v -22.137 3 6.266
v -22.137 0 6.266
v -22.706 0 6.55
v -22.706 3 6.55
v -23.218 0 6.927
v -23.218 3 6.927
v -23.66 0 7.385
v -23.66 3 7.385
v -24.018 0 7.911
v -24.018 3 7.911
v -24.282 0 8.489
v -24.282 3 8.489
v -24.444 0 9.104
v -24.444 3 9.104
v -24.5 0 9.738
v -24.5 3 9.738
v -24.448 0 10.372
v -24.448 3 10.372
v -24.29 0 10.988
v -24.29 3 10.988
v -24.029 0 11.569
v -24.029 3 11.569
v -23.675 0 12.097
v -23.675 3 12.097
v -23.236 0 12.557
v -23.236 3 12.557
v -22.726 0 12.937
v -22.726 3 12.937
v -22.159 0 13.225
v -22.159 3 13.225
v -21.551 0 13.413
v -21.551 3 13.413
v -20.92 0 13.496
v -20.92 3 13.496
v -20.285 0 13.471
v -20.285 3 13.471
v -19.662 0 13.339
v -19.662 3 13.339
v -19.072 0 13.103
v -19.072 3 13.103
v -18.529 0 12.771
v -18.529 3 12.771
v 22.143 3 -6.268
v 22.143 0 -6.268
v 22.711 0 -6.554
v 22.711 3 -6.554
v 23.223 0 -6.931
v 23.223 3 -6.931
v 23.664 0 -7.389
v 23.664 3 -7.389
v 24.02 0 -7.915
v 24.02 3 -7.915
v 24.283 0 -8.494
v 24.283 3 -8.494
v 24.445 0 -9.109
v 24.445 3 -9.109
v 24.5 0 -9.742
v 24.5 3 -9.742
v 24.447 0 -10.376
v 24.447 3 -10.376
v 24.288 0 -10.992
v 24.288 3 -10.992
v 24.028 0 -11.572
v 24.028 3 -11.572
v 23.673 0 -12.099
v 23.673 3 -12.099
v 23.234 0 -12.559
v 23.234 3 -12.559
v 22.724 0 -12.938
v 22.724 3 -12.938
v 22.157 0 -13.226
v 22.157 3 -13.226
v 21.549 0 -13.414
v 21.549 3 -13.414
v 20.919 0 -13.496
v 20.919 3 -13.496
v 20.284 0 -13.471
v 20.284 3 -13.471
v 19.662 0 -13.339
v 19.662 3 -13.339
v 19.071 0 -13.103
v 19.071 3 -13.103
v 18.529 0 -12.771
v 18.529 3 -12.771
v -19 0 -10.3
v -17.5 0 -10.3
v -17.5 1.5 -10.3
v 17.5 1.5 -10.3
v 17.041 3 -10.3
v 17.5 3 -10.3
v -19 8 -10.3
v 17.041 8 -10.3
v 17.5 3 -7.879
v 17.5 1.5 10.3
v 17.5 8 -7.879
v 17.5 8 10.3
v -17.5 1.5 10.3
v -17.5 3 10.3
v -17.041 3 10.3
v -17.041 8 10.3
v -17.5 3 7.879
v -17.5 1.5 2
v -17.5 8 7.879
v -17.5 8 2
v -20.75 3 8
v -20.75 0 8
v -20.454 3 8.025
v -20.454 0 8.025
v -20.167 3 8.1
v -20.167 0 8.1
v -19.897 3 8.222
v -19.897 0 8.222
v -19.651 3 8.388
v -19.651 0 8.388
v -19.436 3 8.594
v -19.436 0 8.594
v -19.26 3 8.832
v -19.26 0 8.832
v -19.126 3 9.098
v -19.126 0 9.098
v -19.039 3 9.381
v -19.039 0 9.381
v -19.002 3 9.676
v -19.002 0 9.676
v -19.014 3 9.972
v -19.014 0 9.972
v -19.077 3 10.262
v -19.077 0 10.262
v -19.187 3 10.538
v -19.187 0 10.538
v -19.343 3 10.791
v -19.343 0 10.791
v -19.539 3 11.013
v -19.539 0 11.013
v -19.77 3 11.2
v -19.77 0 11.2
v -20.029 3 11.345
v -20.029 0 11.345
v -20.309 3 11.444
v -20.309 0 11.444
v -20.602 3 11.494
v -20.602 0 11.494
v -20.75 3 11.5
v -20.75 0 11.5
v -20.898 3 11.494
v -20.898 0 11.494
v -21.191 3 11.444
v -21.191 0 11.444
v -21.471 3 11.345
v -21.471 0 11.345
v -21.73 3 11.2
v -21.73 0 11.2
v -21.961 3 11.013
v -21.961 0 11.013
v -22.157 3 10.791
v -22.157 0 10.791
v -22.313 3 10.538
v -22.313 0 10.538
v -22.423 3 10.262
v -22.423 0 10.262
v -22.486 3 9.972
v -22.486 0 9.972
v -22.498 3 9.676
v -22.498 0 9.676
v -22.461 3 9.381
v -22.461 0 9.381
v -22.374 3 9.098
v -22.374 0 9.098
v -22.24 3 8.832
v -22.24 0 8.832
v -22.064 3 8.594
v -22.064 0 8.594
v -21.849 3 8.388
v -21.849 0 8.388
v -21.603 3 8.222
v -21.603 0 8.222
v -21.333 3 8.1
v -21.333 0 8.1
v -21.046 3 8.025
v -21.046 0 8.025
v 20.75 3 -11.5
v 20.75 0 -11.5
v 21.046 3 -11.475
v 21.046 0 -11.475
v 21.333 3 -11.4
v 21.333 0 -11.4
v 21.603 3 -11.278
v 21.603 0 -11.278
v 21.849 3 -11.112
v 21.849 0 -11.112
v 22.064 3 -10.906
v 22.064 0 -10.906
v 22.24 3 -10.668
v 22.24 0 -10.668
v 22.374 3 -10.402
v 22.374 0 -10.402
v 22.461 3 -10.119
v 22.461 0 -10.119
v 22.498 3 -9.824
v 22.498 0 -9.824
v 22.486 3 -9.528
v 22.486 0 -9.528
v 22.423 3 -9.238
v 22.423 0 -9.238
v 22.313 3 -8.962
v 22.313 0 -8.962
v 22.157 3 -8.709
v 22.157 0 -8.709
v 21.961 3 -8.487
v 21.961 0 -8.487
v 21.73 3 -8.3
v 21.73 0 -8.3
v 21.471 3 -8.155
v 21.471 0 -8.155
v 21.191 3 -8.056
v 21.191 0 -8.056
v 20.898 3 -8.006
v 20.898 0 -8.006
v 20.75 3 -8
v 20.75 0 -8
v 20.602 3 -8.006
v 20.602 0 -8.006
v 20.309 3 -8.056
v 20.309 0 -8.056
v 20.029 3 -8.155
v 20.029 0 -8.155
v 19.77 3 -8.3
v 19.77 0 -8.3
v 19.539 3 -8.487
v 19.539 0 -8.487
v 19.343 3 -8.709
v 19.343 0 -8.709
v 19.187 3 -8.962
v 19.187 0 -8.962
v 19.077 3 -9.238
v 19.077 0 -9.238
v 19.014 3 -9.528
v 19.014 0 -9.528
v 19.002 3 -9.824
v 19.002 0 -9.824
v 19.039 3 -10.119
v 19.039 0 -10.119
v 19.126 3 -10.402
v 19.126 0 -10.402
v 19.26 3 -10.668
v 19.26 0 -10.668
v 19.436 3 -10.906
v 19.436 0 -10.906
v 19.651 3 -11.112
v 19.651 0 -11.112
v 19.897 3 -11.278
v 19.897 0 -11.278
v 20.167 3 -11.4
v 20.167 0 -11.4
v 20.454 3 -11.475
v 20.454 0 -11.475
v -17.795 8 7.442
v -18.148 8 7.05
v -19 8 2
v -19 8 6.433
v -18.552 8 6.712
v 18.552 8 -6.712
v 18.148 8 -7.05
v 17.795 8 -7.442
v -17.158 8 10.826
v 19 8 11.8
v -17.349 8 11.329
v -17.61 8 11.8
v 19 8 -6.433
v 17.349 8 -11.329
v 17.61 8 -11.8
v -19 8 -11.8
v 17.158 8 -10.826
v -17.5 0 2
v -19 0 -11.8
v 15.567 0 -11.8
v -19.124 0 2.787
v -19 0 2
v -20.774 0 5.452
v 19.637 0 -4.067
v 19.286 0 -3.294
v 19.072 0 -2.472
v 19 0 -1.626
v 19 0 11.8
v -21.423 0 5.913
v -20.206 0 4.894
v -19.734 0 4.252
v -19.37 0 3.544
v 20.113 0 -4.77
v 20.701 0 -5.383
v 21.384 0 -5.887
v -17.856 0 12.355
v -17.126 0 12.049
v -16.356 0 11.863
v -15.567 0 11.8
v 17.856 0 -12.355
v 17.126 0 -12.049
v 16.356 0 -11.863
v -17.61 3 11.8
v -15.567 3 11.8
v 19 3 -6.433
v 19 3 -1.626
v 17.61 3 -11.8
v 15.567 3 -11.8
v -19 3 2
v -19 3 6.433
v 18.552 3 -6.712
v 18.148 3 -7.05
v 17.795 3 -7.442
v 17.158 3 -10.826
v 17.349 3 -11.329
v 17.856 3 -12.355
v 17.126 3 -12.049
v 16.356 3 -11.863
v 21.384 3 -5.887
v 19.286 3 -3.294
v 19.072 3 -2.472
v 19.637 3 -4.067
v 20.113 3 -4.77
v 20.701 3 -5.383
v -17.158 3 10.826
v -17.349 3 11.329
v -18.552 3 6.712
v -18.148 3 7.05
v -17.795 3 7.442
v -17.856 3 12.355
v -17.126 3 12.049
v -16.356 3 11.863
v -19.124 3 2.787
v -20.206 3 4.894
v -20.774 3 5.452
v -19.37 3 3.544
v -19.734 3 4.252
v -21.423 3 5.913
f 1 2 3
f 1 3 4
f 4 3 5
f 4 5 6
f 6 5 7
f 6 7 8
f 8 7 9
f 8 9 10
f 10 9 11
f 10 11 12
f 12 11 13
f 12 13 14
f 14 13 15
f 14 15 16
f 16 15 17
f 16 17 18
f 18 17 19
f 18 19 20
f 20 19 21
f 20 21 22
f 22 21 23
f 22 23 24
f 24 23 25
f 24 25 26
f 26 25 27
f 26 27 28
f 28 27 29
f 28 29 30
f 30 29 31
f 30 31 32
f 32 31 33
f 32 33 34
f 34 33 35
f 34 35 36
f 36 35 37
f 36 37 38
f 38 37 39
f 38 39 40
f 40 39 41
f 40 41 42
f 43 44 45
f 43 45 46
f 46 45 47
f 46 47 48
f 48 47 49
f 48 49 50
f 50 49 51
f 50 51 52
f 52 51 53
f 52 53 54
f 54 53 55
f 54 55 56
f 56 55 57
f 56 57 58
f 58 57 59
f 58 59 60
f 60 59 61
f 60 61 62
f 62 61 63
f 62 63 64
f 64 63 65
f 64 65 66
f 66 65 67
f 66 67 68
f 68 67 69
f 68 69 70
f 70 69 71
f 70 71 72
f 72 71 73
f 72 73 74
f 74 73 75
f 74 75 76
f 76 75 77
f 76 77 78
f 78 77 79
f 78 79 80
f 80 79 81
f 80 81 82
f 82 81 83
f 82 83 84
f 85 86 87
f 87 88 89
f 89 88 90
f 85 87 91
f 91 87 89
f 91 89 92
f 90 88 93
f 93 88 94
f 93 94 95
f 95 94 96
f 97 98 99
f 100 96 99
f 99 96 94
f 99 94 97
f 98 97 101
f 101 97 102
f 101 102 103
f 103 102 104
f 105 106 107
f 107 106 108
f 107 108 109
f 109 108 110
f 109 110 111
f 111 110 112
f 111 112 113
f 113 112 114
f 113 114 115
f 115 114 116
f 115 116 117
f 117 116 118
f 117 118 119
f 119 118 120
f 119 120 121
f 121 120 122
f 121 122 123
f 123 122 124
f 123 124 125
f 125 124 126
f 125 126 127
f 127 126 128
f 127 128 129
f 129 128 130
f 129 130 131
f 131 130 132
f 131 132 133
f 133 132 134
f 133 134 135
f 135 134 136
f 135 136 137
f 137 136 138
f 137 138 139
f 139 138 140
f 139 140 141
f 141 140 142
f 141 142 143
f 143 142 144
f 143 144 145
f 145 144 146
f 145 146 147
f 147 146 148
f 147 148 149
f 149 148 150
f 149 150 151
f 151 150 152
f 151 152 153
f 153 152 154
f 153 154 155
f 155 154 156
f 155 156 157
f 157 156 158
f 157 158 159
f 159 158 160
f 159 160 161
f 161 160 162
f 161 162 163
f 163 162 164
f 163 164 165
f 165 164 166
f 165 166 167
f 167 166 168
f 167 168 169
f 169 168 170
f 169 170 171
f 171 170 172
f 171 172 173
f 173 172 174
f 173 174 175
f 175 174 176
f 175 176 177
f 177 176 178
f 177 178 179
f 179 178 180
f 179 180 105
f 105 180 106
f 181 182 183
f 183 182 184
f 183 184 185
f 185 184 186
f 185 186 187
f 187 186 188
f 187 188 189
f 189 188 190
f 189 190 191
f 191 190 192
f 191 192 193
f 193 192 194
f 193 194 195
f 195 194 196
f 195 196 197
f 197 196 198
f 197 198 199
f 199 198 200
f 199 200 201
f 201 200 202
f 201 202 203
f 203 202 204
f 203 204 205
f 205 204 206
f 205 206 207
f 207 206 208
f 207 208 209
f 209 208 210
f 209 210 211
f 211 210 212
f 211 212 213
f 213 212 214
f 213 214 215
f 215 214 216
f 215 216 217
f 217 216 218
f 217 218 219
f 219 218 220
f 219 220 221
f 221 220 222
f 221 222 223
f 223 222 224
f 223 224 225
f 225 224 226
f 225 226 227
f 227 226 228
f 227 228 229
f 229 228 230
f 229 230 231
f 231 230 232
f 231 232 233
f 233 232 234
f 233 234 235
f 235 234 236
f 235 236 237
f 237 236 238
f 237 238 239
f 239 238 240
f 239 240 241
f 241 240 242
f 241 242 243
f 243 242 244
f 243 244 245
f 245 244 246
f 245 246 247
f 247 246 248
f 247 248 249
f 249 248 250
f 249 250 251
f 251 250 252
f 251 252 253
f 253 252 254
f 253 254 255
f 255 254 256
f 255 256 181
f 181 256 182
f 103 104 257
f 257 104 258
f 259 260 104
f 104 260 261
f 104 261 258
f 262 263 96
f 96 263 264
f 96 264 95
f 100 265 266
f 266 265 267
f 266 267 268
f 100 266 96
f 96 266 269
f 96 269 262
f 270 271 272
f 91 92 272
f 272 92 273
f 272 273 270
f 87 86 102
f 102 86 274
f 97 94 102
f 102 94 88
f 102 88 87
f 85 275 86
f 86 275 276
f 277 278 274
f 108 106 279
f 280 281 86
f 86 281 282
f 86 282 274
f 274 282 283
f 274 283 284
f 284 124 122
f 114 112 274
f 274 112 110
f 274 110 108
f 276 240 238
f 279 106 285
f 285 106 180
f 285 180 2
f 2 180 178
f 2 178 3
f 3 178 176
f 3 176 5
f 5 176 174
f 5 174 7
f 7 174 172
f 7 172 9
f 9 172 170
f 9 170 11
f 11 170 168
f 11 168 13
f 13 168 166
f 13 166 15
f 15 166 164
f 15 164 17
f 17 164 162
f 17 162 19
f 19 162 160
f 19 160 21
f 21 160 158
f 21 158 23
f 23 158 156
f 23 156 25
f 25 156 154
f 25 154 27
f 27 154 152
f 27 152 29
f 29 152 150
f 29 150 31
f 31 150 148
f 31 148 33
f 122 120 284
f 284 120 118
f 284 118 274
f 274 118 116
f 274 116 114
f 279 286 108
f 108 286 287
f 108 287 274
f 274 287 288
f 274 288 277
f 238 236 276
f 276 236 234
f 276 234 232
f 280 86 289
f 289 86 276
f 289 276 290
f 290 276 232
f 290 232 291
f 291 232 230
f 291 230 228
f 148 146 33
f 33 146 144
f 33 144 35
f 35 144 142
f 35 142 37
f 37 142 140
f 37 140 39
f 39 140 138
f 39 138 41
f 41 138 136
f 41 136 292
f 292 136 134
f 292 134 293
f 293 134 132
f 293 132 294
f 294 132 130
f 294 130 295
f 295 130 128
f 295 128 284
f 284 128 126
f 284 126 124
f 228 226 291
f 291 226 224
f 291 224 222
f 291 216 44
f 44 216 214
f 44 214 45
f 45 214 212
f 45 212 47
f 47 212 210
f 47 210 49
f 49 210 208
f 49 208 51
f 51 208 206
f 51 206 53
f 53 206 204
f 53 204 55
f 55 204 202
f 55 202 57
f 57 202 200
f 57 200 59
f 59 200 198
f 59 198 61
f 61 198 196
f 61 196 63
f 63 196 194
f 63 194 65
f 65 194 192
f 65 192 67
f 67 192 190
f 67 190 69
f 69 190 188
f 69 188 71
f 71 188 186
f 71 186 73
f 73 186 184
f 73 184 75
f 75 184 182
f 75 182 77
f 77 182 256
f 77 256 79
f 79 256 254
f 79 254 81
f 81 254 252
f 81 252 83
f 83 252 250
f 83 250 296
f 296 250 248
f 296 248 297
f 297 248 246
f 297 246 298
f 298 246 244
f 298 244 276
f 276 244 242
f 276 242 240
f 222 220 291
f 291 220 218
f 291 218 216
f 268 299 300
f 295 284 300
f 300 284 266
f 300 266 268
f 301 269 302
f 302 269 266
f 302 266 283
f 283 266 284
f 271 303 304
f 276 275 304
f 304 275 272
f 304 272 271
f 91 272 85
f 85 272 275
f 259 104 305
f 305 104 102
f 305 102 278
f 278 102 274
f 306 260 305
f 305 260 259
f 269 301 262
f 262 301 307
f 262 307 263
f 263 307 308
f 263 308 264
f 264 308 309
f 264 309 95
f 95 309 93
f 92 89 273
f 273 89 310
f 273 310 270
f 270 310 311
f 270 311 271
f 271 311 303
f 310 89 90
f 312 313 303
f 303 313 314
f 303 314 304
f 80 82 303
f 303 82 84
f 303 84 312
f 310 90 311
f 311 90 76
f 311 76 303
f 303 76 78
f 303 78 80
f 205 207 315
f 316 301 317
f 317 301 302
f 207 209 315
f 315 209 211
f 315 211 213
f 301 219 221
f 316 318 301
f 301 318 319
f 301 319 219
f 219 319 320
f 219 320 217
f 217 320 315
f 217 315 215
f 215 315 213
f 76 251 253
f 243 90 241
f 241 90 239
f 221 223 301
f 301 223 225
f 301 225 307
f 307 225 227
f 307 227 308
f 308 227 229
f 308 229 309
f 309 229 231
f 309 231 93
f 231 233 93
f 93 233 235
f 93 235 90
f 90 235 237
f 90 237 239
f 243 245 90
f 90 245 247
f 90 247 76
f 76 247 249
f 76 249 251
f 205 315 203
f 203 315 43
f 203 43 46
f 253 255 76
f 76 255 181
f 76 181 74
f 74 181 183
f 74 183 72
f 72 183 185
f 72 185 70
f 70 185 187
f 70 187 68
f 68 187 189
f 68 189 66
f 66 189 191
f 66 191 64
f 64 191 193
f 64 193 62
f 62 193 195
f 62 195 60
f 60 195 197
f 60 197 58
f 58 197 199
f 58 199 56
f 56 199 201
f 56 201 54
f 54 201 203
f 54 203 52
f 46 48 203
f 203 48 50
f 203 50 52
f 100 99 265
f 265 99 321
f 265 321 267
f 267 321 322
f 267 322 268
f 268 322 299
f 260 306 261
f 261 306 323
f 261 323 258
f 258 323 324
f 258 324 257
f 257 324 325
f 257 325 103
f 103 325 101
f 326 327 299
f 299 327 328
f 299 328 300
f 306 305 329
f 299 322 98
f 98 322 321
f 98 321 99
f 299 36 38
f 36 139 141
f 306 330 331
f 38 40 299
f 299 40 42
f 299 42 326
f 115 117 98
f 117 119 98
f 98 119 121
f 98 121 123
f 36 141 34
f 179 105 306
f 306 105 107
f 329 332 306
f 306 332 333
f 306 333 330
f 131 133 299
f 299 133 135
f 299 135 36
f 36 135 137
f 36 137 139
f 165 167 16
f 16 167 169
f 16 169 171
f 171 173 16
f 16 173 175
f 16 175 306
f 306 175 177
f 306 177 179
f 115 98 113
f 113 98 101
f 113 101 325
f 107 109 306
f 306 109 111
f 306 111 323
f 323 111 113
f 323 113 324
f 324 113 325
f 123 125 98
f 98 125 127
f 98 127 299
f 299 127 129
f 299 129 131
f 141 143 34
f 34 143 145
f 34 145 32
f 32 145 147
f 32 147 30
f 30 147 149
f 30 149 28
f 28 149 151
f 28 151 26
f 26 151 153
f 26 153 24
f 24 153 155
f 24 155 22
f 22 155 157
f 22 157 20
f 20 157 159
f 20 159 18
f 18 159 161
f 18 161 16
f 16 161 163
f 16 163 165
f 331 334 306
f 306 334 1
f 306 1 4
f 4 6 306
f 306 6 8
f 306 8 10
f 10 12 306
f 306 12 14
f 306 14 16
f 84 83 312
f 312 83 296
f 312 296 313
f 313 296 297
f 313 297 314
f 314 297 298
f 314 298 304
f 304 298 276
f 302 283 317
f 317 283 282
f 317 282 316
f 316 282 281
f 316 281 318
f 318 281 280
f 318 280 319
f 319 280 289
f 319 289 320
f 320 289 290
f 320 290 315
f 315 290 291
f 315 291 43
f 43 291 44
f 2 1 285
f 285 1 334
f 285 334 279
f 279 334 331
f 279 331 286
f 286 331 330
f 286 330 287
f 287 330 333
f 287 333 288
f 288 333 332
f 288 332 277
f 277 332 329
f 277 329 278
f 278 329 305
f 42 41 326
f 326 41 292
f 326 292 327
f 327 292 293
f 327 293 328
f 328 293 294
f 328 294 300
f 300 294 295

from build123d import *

# Parameters (mm, degrees)
SKETCH1_W           = 35
SKETCH1_H           = 20.6
BOSS_EXTRUDE1_DEPTH = 1.5
SKETCH1_3_R         = 1.75
BOSS_EXTRUDE2_DEPTH = 8
CUT_EXTRUDE1_START  = 3
SKETCH1_5_R         = 3.75
CUT_EXTRUDE1_DEPTH  = 27.094673052
FILLET1_R           = 5


with BuildPart() as part:
    # Sketch1 → Boss-Extrude1 (new body)
    with BuildSketch(Plane(origin=(0, 0, 0), x_dir=(1, 0, 0), z_dir=(0, 1, 0))):
        Rectangle(SKETCH1_W, SKETCH1_H)
        with BuildLine():
            Line((-17.5, -10.3), (-17.040552602, -10.3))
            ThreePointArc((-17.040552602, -10.3), (-17.010151892, -10.025746493), (-17, -9.75))
            ThreePointArc((-17, -9.75), (-17.127155813, -8.781754163), (-17.5, -7.879171307))
            Line((-17.5, -7.879171307), (-17.5, -10.3))
        make_face()
        with BuildLine():
            ThreePointArc((17.040552602, 10.3), (17.065766034, 9.050771792), (17.5, 7.879171307))
            Line((17.5, 7.879171307), (17.5, 10.3))
            Line((17.5, 10.3), (17.040552602, 10.3))
        make_face()
    extrude(amount=BOSS_EXTRUDE1_DEPTH)

    # Sketch1<3> → Boss-Extrude2 (add)
    with BuildSketch(Plane(origin=(0, 0, 0), x_dir=(1, 0, 0), z_dir=(0, 1, 0))):
        with BuildLine():
            Line((-17.5, -10.3), (-17.5, -2))
            Line((-17.5, -2), (-19, -2))
            Line((-19, -2), (-19, -6.43337521))
            ThreePointArc((-19, -6.43337521), (-24.380199188, -10.690294559), (-17.609936306, -11.8))
            Line((-17.609936306, -11.8), (19, -11.8))
            Line((19, -11.8), (19, 6.43337521))
            ThreePointArc((19, 6.43337521), (24.380199188, 10.690294559), (17.609936306, 11.8))
            Line((17.609936306, 11.8), (-19, 11.8))
            Line((-19, 11.8), (-19, 10.3))
            Line((-19, 10.3), (17.5, 10.3))
            Line((17.5, 10.3), (17.5, -10.3))
            Line((17.5, -10.3), (-17.5, -10.3))
        make_face()
        with Locations(Location((-20.75, -9.75, 0), (0, 0, 270))):
            Circle(SKETCH1_3_R, mode=Mode.SUBTRACT)
        with Locations(Location((20.75, 9.75, 0), (0, 0, 270))):
            Circle(SKETCH1_3_R, mode=Mode.SUBTRACT)
    extrude(amount=BOSS_EXTRUDE2_DEPTH)

    # Sketch1<5> → Cut-Extrude1 (cut, through all)
    with BuildSketch(Plane(origin=(0, 0, 0), x_dir=(1, 0, 0), z_dir=(0, 1, 0)).offset(CUT_EXTRUDE1_START)):
        with Locations((20.75, 9.75)):
            Circle(SKETCH1_5_R)
        with Locations((-20.75, -9.75)):
            Circle(SKETCH1_5_R)
    extrude(amount=CUT_EXTRUDE1_DEPTH, mode=Mode.SUBTRACT)

    # Fillet1
    # the kernel refuses this fillet: 5 mm, written as the material it adds along each edge
    with BuildSketch(Plane(origin=(-19, 0, 6.43337521), x_dir=(-0.9985759338365271, 0, -0.05334889279551997), z_dir=(0, 1, 0))) as fillet1_piece_1:
        with BuildLine():
            CenterArc((5.235232079, -4.540349679), FILLET1_R, 114.760021094, 63.94168422)
            Line((0.236515659, -4.42706179), (0, 0))
            ThreePointArc((0, 0), (1.570569624, -0.34473774), (3.141139248, 0))
        make_face()
    extrude(amount=3)
    with BuildSketch(Plane(origin=(-17.609936306, 0, 11.8), x_dir=(-0.6872011618867198, 0, 0.7264671796451251), z_dir=(0, 1, 0))) as fillet1_piece_2:
        with BuildLine():
            CenterArc((2.228659001, 4.919887463), FILLET1_R, 223.40896289, 36.320705761)
            Line((-1.403676897, 1.483881654), (0, 0))
            ThreePointArc((0, 0), (0.6685977, 0.060084403), (1.337195401, 0))
        make_face()
    extrude(amount=3)
    with BuildSketch(Plane(origin=(17.609936306, 0, -11.8), x_dir=(-1, 0, 0), z_dir=(0, 1, 0))) as fillet1_piece_3:
        with BuildLine():
            CenterArc((2.042599714, -5), FILLET1_R, 90, 36.320705761)
            ThreePointArc((-0.918922233, -0.971428571), (-0.41581177, -0.527004357), (0, 0))
            Line((0, 0), (2.042599714, 0))
        make_face()
    extrude(amount=3)
    with BuildSketch(Plane(origin=(19, 0, -6.43337521), x_dir=(0.9986229541246332, 0, 0.052461371459300826), z_dir=(0, 1, 0))) as fillet1_piece_4:
        with BuildLine():
            CenterArc((5.245318282, -4.538486728), FILLET1_R, 114.810943637, 68.196252011)
            Line((0.252203511, -4.800793585), (0, 0))
            ThreePointArc((0, 0), (1.573595485, -0.346134954), (3.147190969, 0))
        make_face()
    extrude(amount=3)


solid = part.part
